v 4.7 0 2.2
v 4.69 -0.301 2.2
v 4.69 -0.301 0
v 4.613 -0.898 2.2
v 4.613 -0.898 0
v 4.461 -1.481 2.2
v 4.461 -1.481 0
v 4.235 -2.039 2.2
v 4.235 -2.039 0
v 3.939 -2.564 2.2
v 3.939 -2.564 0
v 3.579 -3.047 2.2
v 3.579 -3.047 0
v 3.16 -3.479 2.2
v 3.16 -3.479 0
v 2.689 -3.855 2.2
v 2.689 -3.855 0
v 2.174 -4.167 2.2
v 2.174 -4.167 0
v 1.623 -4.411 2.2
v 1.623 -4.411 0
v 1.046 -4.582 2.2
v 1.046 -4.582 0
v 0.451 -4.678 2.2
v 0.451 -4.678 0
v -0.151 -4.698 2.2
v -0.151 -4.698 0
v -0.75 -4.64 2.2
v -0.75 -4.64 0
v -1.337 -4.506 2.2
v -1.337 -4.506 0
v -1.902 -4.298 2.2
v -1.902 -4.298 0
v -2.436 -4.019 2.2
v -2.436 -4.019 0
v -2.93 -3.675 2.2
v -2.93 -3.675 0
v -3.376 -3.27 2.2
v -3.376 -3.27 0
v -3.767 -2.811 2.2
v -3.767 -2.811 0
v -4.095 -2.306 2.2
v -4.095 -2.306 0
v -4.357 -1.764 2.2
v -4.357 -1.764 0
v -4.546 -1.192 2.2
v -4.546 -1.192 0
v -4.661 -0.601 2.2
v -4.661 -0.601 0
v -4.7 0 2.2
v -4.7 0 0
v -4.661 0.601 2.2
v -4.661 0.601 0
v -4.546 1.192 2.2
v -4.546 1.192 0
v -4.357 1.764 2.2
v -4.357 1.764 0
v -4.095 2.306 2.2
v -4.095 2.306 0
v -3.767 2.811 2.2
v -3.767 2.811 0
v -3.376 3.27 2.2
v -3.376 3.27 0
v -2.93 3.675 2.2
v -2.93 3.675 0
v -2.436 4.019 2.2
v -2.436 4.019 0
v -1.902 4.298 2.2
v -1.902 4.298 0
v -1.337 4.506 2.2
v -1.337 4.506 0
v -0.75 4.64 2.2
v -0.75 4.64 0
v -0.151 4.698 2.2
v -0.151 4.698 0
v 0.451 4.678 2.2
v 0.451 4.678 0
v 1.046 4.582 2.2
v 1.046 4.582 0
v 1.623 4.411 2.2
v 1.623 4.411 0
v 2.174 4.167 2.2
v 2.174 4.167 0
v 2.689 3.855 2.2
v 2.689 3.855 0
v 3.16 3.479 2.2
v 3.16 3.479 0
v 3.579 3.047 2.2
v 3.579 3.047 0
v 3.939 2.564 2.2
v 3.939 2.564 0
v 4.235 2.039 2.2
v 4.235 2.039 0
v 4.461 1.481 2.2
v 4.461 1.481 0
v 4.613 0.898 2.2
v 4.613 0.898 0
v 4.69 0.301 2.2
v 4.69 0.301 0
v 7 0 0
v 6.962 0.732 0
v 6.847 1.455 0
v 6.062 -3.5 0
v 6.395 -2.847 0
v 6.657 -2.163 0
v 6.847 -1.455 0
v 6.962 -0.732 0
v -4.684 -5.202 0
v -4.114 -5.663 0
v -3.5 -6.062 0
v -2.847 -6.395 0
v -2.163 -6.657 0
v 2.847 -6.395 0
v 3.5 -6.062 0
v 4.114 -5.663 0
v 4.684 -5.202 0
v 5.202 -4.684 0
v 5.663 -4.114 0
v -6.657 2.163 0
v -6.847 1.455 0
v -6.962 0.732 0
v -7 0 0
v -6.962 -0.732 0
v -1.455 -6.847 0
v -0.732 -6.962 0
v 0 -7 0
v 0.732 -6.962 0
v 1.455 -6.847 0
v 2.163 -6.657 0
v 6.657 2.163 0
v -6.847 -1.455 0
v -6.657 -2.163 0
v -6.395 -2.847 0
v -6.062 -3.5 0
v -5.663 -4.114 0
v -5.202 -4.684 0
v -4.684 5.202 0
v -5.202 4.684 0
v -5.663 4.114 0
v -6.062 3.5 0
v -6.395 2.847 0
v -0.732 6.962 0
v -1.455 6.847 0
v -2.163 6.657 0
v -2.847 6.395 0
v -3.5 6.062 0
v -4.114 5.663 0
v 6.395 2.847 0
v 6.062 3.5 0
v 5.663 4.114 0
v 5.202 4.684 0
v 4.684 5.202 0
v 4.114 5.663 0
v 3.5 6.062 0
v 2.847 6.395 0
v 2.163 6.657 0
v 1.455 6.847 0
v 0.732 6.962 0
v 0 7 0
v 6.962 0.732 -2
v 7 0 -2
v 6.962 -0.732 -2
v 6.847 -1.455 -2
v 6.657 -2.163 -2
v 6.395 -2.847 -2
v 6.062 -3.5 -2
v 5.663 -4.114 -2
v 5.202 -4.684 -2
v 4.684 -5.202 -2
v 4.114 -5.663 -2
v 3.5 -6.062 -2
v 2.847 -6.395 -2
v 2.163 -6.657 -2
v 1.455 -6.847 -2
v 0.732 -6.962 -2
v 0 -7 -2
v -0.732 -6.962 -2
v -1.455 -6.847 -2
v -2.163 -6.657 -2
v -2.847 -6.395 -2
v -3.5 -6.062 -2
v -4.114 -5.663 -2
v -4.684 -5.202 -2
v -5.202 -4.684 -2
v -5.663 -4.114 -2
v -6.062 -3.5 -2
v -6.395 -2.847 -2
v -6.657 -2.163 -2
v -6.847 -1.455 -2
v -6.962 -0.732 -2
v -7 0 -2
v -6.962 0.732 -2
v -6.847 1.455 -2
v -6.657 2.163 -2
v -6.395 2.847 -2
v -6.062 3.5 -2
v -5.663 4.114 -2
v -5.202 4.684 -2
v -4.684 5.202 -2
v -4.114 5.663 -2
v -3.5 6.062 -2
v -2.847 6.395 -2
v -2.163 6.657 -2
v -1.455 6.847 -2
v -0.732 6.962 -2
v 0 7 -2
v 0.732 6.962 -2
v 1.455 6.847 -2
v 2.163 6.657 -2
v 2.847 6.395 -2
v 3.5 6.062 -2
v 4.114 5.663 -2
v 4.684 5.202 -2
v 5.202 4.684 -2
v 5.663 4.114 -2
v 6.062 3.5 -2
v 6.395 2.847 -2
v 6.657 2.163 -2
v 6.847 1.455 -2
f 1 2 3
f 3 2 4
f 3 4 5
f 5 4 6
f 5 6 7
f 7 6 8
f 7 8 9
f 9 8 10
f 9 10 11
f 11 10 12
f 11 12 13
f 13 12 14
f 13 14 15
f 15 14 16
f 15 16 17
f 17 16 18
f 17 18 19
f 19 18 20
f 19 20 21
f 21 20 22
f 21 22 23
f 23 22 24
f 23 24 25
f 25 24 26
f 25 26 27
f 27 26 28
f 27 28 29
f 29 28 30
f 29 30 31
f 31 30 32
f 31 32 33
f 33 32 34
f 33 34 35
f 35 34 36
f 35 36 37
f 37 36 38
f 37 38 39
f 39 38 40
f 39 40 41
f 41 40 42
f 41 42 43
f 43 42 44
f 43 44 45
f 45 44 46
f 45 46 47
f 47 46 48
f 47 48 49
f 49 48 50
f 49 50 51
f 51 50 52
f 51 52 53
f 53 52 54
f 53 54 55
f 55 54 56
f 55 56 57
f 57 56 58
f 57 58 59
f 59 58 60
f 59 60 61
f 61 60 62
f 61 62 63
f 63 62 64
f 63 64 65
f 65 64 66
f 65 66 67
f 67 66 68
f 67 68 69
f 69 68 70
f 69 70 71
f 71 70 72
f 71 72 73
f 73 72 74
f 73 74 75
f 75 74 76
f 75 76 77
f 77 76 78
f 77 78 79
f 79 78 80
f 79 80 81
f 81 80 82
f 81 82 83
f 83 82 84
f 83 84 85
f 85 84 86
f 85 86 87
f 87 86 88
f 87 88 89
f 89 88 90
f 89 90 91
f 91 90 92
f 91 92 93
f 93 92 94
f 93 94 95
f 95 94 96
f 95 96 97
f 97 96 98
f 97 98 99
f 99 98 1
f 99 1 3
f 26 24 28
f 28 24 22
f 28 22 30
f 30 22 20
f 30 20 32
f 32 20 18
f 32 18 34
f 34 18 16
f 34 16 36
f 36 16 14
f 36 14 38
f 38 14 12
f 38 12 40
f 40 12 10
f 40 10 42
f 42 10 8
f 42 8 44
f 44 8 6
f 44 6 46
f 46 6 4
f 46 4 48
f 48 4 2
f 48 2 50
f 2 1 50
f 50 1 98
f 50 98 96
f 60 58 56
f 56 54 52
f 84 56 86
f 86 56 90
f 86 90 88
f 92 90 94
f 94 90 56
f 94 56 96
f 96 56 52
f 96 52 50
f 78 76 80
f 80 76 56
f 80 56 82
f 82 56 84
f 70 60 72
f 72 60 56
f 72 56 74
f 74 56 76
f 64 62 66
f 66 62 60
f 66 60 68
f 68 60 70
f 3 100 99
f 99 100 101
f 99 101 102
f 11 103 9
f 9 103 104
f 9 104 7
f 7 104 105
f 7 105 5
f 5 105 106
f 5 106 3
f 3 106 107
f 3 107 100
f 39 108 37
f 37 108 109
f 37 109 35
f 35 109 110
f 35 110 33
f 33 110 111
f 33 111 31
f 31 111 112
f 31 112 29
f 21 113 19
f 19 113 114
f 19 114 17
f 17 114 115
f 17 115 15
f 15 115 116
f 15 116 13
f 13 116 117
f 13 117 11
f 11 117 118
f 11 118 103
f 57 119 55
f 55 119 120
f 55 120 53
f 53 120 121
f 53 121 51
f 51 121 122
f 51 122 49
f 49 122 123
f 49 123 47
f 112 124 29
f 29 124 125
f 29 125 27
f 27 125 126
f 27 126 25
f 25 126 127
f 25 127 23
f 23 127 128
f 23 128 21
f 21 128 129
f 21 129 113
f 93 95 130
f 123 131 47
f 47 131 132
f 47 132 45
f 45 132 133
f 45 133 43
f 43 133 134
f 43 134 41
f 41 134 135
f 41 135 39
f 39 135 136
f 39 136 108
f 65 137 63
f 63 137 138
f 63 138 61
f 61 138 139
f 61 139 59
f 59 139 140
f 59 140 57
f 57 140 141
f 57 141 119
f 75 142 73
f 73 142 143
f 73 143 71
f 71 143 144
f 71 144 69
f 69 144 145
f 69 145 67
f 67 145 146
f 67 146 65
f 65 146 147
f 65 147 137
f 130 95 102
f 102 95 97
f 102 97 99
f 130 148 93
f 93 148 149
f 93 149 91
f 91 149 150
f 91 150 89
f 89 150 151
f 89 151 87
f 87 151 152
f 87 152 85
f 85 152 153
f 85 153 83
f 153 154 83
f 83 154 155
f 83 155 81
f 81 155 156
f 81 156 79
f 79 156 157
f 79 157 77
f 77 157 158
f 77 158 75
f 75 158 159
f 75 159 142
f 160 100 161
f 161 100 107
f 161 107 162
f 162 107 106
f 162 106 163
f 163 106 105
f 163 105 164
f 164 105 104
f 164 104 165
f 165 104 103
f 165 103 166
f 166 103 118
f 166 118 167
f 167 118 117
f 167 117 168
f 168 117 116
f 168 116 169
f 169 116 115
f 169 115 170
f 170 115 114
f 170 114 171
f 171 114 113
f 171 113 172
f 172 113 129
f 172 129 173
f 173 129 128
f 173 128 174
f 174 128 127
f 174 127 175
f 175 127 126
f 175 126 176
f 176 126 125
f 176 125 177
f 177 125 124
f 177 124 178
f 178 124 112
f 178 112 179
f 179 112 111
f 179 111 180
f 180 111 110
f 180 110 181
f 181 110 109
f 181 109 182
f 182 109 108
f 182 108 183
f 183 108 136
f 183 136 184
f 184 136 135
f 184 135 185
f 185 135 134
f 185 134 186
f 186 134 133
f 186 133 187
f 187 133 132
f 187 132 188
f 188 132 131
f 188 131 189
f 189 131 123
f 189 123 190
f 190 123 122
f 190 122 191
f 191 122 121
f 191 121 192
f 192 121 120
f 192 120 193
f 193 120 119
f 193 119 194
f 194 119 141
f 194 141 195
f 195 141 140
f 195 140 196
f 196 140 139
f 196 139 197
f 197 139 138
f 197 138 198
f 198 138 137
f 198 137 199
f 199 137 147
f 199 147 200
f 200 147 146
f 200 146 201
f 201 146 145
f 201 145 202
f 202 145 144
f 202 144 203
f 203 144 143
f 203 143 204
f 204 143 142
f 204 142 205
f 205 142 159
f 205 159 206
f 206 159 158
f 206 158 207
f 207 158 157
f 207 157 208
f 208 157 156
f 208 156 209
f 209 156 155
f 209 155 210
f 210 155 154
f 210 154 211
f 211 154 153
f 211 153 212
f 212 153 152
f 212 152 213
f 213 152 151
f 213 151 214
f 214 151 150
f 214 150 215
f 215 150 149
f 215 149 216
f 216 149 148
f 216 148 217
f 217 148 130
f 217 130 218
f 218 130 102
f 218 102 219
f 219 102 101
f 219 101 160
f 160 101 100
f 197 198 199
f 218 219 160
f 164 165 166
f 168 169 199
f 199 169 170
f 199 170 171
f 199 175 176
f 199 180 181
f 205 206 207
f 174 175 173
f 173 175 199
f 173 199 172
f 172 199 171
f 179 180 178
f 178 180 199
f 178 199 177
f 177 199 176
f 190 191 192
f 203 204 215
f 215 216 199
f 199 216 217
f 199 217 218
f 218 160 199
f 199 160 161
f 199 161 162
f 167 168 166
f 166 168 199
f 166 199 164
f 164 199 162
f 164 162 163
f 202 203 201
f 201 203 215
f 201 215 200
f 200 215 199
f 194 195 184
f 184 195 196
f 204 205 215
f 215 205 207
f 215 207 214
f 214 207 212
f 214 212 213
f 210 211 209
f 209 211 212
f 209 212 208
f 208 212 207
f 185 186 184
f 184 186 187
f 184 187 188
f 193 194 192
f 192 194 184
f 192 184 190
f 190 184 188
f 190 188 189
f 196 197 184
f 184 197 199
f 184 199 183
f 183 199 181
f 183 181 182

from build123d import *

# Parameters (mm, degrees)
SKETCH1_R           = 4.7
BOSS_EXTRUDE1_DEPTH = 2.2
BOSS_EXTRUDE2_DEPTH = 2
SKETCH3_R           = 7
BOSS_EXTRUDE3_DEPTH = 2
SPLIT1_START        = 2.2
SPLIT1_DEPTH        = 2


# Read off the part's stored shape, not the designer's step: Split1
with BuildPart() as part:
    # Sketch1 → Boss-Extrude1 (new body)
    with BuildSketch(Plane.XY):
        Circle(SKETCH1_R)
    extrude(amount=BOSS_EXTRUDE1_DEPTH)

    # Sketch3 → Boss-Extrude3 (add)
    with BuildSketch(Plane(origin=(0, 0, 0), x_dir=(-1, 0, 0), z_dir=(0, 0, -1))):
        Circle(SKETCH3_R)
    extrude(amount=BOSS_EXTRUDE3_DEPTH)


with BuildPart() as body_2:
    # Sketch2 → Boss-Extrude2 (new body)
    with BuildSketch(Plane.XY.offset(2.2)):
        with BuildLine():
            Line((-1.76, -11.3), (-0.76, -12.3))
            Line((-0.76, -12.3), (1, -12.3))
            Line((1, -12.3), (2, -11.3))
            Line((2, -11.3), (2, -8.490583019))
            ThreePointArc((2, -8.490583019), (2.470239954, -5.460125385), (3.836734694, -2.714676203))
            ThreePointArc((3.836734694, -2.714676203), (-0.065156188, 4.699548348), (-3.76, -2.82))
            ThreePointArc((-3.76, -2.82), (-2.273167019, -5.65772234), (-1.76, -8.82))
            Line((-1.76, -8.82), (-1.76, -11.3))
        make_face()
    extrude(amount=BOSS_EXTRUDE2_DEPTH)

    # Split1 outline → Split1 (cut)
    with BuildSketch(Plane.XY.offset(SPLIT1_START)):
        with BuildLine():
            ThreePointArc((3.836734694, -2.714676203), (-0.065156188, 4.699548348), (-3.76, -2.82))
            ThreePointArc((-3.76, -2.82), (-2.273167019, -5.65772234), (-1.76, -8.82))
            Line((-1.76, -8.82), (-1.76, -11.3))
            Line((-1.76, -11.3), (-0.76, -12.3))
            Line((-0.76, -12.3), (1, -12.3))
            Line((1, -12.3), (2, -11.3))
            Line((2, -11.3), (2, -8.490583019))
            ThreePointArc((2, -8.490583019), (2.470239954, -5.460125385), (3.836734694, -2.714676203))
        make_face()
    extrude(amount=SPLIT1_DEPTH, mode=Mode.SUBTRACT)


solid = part.part
